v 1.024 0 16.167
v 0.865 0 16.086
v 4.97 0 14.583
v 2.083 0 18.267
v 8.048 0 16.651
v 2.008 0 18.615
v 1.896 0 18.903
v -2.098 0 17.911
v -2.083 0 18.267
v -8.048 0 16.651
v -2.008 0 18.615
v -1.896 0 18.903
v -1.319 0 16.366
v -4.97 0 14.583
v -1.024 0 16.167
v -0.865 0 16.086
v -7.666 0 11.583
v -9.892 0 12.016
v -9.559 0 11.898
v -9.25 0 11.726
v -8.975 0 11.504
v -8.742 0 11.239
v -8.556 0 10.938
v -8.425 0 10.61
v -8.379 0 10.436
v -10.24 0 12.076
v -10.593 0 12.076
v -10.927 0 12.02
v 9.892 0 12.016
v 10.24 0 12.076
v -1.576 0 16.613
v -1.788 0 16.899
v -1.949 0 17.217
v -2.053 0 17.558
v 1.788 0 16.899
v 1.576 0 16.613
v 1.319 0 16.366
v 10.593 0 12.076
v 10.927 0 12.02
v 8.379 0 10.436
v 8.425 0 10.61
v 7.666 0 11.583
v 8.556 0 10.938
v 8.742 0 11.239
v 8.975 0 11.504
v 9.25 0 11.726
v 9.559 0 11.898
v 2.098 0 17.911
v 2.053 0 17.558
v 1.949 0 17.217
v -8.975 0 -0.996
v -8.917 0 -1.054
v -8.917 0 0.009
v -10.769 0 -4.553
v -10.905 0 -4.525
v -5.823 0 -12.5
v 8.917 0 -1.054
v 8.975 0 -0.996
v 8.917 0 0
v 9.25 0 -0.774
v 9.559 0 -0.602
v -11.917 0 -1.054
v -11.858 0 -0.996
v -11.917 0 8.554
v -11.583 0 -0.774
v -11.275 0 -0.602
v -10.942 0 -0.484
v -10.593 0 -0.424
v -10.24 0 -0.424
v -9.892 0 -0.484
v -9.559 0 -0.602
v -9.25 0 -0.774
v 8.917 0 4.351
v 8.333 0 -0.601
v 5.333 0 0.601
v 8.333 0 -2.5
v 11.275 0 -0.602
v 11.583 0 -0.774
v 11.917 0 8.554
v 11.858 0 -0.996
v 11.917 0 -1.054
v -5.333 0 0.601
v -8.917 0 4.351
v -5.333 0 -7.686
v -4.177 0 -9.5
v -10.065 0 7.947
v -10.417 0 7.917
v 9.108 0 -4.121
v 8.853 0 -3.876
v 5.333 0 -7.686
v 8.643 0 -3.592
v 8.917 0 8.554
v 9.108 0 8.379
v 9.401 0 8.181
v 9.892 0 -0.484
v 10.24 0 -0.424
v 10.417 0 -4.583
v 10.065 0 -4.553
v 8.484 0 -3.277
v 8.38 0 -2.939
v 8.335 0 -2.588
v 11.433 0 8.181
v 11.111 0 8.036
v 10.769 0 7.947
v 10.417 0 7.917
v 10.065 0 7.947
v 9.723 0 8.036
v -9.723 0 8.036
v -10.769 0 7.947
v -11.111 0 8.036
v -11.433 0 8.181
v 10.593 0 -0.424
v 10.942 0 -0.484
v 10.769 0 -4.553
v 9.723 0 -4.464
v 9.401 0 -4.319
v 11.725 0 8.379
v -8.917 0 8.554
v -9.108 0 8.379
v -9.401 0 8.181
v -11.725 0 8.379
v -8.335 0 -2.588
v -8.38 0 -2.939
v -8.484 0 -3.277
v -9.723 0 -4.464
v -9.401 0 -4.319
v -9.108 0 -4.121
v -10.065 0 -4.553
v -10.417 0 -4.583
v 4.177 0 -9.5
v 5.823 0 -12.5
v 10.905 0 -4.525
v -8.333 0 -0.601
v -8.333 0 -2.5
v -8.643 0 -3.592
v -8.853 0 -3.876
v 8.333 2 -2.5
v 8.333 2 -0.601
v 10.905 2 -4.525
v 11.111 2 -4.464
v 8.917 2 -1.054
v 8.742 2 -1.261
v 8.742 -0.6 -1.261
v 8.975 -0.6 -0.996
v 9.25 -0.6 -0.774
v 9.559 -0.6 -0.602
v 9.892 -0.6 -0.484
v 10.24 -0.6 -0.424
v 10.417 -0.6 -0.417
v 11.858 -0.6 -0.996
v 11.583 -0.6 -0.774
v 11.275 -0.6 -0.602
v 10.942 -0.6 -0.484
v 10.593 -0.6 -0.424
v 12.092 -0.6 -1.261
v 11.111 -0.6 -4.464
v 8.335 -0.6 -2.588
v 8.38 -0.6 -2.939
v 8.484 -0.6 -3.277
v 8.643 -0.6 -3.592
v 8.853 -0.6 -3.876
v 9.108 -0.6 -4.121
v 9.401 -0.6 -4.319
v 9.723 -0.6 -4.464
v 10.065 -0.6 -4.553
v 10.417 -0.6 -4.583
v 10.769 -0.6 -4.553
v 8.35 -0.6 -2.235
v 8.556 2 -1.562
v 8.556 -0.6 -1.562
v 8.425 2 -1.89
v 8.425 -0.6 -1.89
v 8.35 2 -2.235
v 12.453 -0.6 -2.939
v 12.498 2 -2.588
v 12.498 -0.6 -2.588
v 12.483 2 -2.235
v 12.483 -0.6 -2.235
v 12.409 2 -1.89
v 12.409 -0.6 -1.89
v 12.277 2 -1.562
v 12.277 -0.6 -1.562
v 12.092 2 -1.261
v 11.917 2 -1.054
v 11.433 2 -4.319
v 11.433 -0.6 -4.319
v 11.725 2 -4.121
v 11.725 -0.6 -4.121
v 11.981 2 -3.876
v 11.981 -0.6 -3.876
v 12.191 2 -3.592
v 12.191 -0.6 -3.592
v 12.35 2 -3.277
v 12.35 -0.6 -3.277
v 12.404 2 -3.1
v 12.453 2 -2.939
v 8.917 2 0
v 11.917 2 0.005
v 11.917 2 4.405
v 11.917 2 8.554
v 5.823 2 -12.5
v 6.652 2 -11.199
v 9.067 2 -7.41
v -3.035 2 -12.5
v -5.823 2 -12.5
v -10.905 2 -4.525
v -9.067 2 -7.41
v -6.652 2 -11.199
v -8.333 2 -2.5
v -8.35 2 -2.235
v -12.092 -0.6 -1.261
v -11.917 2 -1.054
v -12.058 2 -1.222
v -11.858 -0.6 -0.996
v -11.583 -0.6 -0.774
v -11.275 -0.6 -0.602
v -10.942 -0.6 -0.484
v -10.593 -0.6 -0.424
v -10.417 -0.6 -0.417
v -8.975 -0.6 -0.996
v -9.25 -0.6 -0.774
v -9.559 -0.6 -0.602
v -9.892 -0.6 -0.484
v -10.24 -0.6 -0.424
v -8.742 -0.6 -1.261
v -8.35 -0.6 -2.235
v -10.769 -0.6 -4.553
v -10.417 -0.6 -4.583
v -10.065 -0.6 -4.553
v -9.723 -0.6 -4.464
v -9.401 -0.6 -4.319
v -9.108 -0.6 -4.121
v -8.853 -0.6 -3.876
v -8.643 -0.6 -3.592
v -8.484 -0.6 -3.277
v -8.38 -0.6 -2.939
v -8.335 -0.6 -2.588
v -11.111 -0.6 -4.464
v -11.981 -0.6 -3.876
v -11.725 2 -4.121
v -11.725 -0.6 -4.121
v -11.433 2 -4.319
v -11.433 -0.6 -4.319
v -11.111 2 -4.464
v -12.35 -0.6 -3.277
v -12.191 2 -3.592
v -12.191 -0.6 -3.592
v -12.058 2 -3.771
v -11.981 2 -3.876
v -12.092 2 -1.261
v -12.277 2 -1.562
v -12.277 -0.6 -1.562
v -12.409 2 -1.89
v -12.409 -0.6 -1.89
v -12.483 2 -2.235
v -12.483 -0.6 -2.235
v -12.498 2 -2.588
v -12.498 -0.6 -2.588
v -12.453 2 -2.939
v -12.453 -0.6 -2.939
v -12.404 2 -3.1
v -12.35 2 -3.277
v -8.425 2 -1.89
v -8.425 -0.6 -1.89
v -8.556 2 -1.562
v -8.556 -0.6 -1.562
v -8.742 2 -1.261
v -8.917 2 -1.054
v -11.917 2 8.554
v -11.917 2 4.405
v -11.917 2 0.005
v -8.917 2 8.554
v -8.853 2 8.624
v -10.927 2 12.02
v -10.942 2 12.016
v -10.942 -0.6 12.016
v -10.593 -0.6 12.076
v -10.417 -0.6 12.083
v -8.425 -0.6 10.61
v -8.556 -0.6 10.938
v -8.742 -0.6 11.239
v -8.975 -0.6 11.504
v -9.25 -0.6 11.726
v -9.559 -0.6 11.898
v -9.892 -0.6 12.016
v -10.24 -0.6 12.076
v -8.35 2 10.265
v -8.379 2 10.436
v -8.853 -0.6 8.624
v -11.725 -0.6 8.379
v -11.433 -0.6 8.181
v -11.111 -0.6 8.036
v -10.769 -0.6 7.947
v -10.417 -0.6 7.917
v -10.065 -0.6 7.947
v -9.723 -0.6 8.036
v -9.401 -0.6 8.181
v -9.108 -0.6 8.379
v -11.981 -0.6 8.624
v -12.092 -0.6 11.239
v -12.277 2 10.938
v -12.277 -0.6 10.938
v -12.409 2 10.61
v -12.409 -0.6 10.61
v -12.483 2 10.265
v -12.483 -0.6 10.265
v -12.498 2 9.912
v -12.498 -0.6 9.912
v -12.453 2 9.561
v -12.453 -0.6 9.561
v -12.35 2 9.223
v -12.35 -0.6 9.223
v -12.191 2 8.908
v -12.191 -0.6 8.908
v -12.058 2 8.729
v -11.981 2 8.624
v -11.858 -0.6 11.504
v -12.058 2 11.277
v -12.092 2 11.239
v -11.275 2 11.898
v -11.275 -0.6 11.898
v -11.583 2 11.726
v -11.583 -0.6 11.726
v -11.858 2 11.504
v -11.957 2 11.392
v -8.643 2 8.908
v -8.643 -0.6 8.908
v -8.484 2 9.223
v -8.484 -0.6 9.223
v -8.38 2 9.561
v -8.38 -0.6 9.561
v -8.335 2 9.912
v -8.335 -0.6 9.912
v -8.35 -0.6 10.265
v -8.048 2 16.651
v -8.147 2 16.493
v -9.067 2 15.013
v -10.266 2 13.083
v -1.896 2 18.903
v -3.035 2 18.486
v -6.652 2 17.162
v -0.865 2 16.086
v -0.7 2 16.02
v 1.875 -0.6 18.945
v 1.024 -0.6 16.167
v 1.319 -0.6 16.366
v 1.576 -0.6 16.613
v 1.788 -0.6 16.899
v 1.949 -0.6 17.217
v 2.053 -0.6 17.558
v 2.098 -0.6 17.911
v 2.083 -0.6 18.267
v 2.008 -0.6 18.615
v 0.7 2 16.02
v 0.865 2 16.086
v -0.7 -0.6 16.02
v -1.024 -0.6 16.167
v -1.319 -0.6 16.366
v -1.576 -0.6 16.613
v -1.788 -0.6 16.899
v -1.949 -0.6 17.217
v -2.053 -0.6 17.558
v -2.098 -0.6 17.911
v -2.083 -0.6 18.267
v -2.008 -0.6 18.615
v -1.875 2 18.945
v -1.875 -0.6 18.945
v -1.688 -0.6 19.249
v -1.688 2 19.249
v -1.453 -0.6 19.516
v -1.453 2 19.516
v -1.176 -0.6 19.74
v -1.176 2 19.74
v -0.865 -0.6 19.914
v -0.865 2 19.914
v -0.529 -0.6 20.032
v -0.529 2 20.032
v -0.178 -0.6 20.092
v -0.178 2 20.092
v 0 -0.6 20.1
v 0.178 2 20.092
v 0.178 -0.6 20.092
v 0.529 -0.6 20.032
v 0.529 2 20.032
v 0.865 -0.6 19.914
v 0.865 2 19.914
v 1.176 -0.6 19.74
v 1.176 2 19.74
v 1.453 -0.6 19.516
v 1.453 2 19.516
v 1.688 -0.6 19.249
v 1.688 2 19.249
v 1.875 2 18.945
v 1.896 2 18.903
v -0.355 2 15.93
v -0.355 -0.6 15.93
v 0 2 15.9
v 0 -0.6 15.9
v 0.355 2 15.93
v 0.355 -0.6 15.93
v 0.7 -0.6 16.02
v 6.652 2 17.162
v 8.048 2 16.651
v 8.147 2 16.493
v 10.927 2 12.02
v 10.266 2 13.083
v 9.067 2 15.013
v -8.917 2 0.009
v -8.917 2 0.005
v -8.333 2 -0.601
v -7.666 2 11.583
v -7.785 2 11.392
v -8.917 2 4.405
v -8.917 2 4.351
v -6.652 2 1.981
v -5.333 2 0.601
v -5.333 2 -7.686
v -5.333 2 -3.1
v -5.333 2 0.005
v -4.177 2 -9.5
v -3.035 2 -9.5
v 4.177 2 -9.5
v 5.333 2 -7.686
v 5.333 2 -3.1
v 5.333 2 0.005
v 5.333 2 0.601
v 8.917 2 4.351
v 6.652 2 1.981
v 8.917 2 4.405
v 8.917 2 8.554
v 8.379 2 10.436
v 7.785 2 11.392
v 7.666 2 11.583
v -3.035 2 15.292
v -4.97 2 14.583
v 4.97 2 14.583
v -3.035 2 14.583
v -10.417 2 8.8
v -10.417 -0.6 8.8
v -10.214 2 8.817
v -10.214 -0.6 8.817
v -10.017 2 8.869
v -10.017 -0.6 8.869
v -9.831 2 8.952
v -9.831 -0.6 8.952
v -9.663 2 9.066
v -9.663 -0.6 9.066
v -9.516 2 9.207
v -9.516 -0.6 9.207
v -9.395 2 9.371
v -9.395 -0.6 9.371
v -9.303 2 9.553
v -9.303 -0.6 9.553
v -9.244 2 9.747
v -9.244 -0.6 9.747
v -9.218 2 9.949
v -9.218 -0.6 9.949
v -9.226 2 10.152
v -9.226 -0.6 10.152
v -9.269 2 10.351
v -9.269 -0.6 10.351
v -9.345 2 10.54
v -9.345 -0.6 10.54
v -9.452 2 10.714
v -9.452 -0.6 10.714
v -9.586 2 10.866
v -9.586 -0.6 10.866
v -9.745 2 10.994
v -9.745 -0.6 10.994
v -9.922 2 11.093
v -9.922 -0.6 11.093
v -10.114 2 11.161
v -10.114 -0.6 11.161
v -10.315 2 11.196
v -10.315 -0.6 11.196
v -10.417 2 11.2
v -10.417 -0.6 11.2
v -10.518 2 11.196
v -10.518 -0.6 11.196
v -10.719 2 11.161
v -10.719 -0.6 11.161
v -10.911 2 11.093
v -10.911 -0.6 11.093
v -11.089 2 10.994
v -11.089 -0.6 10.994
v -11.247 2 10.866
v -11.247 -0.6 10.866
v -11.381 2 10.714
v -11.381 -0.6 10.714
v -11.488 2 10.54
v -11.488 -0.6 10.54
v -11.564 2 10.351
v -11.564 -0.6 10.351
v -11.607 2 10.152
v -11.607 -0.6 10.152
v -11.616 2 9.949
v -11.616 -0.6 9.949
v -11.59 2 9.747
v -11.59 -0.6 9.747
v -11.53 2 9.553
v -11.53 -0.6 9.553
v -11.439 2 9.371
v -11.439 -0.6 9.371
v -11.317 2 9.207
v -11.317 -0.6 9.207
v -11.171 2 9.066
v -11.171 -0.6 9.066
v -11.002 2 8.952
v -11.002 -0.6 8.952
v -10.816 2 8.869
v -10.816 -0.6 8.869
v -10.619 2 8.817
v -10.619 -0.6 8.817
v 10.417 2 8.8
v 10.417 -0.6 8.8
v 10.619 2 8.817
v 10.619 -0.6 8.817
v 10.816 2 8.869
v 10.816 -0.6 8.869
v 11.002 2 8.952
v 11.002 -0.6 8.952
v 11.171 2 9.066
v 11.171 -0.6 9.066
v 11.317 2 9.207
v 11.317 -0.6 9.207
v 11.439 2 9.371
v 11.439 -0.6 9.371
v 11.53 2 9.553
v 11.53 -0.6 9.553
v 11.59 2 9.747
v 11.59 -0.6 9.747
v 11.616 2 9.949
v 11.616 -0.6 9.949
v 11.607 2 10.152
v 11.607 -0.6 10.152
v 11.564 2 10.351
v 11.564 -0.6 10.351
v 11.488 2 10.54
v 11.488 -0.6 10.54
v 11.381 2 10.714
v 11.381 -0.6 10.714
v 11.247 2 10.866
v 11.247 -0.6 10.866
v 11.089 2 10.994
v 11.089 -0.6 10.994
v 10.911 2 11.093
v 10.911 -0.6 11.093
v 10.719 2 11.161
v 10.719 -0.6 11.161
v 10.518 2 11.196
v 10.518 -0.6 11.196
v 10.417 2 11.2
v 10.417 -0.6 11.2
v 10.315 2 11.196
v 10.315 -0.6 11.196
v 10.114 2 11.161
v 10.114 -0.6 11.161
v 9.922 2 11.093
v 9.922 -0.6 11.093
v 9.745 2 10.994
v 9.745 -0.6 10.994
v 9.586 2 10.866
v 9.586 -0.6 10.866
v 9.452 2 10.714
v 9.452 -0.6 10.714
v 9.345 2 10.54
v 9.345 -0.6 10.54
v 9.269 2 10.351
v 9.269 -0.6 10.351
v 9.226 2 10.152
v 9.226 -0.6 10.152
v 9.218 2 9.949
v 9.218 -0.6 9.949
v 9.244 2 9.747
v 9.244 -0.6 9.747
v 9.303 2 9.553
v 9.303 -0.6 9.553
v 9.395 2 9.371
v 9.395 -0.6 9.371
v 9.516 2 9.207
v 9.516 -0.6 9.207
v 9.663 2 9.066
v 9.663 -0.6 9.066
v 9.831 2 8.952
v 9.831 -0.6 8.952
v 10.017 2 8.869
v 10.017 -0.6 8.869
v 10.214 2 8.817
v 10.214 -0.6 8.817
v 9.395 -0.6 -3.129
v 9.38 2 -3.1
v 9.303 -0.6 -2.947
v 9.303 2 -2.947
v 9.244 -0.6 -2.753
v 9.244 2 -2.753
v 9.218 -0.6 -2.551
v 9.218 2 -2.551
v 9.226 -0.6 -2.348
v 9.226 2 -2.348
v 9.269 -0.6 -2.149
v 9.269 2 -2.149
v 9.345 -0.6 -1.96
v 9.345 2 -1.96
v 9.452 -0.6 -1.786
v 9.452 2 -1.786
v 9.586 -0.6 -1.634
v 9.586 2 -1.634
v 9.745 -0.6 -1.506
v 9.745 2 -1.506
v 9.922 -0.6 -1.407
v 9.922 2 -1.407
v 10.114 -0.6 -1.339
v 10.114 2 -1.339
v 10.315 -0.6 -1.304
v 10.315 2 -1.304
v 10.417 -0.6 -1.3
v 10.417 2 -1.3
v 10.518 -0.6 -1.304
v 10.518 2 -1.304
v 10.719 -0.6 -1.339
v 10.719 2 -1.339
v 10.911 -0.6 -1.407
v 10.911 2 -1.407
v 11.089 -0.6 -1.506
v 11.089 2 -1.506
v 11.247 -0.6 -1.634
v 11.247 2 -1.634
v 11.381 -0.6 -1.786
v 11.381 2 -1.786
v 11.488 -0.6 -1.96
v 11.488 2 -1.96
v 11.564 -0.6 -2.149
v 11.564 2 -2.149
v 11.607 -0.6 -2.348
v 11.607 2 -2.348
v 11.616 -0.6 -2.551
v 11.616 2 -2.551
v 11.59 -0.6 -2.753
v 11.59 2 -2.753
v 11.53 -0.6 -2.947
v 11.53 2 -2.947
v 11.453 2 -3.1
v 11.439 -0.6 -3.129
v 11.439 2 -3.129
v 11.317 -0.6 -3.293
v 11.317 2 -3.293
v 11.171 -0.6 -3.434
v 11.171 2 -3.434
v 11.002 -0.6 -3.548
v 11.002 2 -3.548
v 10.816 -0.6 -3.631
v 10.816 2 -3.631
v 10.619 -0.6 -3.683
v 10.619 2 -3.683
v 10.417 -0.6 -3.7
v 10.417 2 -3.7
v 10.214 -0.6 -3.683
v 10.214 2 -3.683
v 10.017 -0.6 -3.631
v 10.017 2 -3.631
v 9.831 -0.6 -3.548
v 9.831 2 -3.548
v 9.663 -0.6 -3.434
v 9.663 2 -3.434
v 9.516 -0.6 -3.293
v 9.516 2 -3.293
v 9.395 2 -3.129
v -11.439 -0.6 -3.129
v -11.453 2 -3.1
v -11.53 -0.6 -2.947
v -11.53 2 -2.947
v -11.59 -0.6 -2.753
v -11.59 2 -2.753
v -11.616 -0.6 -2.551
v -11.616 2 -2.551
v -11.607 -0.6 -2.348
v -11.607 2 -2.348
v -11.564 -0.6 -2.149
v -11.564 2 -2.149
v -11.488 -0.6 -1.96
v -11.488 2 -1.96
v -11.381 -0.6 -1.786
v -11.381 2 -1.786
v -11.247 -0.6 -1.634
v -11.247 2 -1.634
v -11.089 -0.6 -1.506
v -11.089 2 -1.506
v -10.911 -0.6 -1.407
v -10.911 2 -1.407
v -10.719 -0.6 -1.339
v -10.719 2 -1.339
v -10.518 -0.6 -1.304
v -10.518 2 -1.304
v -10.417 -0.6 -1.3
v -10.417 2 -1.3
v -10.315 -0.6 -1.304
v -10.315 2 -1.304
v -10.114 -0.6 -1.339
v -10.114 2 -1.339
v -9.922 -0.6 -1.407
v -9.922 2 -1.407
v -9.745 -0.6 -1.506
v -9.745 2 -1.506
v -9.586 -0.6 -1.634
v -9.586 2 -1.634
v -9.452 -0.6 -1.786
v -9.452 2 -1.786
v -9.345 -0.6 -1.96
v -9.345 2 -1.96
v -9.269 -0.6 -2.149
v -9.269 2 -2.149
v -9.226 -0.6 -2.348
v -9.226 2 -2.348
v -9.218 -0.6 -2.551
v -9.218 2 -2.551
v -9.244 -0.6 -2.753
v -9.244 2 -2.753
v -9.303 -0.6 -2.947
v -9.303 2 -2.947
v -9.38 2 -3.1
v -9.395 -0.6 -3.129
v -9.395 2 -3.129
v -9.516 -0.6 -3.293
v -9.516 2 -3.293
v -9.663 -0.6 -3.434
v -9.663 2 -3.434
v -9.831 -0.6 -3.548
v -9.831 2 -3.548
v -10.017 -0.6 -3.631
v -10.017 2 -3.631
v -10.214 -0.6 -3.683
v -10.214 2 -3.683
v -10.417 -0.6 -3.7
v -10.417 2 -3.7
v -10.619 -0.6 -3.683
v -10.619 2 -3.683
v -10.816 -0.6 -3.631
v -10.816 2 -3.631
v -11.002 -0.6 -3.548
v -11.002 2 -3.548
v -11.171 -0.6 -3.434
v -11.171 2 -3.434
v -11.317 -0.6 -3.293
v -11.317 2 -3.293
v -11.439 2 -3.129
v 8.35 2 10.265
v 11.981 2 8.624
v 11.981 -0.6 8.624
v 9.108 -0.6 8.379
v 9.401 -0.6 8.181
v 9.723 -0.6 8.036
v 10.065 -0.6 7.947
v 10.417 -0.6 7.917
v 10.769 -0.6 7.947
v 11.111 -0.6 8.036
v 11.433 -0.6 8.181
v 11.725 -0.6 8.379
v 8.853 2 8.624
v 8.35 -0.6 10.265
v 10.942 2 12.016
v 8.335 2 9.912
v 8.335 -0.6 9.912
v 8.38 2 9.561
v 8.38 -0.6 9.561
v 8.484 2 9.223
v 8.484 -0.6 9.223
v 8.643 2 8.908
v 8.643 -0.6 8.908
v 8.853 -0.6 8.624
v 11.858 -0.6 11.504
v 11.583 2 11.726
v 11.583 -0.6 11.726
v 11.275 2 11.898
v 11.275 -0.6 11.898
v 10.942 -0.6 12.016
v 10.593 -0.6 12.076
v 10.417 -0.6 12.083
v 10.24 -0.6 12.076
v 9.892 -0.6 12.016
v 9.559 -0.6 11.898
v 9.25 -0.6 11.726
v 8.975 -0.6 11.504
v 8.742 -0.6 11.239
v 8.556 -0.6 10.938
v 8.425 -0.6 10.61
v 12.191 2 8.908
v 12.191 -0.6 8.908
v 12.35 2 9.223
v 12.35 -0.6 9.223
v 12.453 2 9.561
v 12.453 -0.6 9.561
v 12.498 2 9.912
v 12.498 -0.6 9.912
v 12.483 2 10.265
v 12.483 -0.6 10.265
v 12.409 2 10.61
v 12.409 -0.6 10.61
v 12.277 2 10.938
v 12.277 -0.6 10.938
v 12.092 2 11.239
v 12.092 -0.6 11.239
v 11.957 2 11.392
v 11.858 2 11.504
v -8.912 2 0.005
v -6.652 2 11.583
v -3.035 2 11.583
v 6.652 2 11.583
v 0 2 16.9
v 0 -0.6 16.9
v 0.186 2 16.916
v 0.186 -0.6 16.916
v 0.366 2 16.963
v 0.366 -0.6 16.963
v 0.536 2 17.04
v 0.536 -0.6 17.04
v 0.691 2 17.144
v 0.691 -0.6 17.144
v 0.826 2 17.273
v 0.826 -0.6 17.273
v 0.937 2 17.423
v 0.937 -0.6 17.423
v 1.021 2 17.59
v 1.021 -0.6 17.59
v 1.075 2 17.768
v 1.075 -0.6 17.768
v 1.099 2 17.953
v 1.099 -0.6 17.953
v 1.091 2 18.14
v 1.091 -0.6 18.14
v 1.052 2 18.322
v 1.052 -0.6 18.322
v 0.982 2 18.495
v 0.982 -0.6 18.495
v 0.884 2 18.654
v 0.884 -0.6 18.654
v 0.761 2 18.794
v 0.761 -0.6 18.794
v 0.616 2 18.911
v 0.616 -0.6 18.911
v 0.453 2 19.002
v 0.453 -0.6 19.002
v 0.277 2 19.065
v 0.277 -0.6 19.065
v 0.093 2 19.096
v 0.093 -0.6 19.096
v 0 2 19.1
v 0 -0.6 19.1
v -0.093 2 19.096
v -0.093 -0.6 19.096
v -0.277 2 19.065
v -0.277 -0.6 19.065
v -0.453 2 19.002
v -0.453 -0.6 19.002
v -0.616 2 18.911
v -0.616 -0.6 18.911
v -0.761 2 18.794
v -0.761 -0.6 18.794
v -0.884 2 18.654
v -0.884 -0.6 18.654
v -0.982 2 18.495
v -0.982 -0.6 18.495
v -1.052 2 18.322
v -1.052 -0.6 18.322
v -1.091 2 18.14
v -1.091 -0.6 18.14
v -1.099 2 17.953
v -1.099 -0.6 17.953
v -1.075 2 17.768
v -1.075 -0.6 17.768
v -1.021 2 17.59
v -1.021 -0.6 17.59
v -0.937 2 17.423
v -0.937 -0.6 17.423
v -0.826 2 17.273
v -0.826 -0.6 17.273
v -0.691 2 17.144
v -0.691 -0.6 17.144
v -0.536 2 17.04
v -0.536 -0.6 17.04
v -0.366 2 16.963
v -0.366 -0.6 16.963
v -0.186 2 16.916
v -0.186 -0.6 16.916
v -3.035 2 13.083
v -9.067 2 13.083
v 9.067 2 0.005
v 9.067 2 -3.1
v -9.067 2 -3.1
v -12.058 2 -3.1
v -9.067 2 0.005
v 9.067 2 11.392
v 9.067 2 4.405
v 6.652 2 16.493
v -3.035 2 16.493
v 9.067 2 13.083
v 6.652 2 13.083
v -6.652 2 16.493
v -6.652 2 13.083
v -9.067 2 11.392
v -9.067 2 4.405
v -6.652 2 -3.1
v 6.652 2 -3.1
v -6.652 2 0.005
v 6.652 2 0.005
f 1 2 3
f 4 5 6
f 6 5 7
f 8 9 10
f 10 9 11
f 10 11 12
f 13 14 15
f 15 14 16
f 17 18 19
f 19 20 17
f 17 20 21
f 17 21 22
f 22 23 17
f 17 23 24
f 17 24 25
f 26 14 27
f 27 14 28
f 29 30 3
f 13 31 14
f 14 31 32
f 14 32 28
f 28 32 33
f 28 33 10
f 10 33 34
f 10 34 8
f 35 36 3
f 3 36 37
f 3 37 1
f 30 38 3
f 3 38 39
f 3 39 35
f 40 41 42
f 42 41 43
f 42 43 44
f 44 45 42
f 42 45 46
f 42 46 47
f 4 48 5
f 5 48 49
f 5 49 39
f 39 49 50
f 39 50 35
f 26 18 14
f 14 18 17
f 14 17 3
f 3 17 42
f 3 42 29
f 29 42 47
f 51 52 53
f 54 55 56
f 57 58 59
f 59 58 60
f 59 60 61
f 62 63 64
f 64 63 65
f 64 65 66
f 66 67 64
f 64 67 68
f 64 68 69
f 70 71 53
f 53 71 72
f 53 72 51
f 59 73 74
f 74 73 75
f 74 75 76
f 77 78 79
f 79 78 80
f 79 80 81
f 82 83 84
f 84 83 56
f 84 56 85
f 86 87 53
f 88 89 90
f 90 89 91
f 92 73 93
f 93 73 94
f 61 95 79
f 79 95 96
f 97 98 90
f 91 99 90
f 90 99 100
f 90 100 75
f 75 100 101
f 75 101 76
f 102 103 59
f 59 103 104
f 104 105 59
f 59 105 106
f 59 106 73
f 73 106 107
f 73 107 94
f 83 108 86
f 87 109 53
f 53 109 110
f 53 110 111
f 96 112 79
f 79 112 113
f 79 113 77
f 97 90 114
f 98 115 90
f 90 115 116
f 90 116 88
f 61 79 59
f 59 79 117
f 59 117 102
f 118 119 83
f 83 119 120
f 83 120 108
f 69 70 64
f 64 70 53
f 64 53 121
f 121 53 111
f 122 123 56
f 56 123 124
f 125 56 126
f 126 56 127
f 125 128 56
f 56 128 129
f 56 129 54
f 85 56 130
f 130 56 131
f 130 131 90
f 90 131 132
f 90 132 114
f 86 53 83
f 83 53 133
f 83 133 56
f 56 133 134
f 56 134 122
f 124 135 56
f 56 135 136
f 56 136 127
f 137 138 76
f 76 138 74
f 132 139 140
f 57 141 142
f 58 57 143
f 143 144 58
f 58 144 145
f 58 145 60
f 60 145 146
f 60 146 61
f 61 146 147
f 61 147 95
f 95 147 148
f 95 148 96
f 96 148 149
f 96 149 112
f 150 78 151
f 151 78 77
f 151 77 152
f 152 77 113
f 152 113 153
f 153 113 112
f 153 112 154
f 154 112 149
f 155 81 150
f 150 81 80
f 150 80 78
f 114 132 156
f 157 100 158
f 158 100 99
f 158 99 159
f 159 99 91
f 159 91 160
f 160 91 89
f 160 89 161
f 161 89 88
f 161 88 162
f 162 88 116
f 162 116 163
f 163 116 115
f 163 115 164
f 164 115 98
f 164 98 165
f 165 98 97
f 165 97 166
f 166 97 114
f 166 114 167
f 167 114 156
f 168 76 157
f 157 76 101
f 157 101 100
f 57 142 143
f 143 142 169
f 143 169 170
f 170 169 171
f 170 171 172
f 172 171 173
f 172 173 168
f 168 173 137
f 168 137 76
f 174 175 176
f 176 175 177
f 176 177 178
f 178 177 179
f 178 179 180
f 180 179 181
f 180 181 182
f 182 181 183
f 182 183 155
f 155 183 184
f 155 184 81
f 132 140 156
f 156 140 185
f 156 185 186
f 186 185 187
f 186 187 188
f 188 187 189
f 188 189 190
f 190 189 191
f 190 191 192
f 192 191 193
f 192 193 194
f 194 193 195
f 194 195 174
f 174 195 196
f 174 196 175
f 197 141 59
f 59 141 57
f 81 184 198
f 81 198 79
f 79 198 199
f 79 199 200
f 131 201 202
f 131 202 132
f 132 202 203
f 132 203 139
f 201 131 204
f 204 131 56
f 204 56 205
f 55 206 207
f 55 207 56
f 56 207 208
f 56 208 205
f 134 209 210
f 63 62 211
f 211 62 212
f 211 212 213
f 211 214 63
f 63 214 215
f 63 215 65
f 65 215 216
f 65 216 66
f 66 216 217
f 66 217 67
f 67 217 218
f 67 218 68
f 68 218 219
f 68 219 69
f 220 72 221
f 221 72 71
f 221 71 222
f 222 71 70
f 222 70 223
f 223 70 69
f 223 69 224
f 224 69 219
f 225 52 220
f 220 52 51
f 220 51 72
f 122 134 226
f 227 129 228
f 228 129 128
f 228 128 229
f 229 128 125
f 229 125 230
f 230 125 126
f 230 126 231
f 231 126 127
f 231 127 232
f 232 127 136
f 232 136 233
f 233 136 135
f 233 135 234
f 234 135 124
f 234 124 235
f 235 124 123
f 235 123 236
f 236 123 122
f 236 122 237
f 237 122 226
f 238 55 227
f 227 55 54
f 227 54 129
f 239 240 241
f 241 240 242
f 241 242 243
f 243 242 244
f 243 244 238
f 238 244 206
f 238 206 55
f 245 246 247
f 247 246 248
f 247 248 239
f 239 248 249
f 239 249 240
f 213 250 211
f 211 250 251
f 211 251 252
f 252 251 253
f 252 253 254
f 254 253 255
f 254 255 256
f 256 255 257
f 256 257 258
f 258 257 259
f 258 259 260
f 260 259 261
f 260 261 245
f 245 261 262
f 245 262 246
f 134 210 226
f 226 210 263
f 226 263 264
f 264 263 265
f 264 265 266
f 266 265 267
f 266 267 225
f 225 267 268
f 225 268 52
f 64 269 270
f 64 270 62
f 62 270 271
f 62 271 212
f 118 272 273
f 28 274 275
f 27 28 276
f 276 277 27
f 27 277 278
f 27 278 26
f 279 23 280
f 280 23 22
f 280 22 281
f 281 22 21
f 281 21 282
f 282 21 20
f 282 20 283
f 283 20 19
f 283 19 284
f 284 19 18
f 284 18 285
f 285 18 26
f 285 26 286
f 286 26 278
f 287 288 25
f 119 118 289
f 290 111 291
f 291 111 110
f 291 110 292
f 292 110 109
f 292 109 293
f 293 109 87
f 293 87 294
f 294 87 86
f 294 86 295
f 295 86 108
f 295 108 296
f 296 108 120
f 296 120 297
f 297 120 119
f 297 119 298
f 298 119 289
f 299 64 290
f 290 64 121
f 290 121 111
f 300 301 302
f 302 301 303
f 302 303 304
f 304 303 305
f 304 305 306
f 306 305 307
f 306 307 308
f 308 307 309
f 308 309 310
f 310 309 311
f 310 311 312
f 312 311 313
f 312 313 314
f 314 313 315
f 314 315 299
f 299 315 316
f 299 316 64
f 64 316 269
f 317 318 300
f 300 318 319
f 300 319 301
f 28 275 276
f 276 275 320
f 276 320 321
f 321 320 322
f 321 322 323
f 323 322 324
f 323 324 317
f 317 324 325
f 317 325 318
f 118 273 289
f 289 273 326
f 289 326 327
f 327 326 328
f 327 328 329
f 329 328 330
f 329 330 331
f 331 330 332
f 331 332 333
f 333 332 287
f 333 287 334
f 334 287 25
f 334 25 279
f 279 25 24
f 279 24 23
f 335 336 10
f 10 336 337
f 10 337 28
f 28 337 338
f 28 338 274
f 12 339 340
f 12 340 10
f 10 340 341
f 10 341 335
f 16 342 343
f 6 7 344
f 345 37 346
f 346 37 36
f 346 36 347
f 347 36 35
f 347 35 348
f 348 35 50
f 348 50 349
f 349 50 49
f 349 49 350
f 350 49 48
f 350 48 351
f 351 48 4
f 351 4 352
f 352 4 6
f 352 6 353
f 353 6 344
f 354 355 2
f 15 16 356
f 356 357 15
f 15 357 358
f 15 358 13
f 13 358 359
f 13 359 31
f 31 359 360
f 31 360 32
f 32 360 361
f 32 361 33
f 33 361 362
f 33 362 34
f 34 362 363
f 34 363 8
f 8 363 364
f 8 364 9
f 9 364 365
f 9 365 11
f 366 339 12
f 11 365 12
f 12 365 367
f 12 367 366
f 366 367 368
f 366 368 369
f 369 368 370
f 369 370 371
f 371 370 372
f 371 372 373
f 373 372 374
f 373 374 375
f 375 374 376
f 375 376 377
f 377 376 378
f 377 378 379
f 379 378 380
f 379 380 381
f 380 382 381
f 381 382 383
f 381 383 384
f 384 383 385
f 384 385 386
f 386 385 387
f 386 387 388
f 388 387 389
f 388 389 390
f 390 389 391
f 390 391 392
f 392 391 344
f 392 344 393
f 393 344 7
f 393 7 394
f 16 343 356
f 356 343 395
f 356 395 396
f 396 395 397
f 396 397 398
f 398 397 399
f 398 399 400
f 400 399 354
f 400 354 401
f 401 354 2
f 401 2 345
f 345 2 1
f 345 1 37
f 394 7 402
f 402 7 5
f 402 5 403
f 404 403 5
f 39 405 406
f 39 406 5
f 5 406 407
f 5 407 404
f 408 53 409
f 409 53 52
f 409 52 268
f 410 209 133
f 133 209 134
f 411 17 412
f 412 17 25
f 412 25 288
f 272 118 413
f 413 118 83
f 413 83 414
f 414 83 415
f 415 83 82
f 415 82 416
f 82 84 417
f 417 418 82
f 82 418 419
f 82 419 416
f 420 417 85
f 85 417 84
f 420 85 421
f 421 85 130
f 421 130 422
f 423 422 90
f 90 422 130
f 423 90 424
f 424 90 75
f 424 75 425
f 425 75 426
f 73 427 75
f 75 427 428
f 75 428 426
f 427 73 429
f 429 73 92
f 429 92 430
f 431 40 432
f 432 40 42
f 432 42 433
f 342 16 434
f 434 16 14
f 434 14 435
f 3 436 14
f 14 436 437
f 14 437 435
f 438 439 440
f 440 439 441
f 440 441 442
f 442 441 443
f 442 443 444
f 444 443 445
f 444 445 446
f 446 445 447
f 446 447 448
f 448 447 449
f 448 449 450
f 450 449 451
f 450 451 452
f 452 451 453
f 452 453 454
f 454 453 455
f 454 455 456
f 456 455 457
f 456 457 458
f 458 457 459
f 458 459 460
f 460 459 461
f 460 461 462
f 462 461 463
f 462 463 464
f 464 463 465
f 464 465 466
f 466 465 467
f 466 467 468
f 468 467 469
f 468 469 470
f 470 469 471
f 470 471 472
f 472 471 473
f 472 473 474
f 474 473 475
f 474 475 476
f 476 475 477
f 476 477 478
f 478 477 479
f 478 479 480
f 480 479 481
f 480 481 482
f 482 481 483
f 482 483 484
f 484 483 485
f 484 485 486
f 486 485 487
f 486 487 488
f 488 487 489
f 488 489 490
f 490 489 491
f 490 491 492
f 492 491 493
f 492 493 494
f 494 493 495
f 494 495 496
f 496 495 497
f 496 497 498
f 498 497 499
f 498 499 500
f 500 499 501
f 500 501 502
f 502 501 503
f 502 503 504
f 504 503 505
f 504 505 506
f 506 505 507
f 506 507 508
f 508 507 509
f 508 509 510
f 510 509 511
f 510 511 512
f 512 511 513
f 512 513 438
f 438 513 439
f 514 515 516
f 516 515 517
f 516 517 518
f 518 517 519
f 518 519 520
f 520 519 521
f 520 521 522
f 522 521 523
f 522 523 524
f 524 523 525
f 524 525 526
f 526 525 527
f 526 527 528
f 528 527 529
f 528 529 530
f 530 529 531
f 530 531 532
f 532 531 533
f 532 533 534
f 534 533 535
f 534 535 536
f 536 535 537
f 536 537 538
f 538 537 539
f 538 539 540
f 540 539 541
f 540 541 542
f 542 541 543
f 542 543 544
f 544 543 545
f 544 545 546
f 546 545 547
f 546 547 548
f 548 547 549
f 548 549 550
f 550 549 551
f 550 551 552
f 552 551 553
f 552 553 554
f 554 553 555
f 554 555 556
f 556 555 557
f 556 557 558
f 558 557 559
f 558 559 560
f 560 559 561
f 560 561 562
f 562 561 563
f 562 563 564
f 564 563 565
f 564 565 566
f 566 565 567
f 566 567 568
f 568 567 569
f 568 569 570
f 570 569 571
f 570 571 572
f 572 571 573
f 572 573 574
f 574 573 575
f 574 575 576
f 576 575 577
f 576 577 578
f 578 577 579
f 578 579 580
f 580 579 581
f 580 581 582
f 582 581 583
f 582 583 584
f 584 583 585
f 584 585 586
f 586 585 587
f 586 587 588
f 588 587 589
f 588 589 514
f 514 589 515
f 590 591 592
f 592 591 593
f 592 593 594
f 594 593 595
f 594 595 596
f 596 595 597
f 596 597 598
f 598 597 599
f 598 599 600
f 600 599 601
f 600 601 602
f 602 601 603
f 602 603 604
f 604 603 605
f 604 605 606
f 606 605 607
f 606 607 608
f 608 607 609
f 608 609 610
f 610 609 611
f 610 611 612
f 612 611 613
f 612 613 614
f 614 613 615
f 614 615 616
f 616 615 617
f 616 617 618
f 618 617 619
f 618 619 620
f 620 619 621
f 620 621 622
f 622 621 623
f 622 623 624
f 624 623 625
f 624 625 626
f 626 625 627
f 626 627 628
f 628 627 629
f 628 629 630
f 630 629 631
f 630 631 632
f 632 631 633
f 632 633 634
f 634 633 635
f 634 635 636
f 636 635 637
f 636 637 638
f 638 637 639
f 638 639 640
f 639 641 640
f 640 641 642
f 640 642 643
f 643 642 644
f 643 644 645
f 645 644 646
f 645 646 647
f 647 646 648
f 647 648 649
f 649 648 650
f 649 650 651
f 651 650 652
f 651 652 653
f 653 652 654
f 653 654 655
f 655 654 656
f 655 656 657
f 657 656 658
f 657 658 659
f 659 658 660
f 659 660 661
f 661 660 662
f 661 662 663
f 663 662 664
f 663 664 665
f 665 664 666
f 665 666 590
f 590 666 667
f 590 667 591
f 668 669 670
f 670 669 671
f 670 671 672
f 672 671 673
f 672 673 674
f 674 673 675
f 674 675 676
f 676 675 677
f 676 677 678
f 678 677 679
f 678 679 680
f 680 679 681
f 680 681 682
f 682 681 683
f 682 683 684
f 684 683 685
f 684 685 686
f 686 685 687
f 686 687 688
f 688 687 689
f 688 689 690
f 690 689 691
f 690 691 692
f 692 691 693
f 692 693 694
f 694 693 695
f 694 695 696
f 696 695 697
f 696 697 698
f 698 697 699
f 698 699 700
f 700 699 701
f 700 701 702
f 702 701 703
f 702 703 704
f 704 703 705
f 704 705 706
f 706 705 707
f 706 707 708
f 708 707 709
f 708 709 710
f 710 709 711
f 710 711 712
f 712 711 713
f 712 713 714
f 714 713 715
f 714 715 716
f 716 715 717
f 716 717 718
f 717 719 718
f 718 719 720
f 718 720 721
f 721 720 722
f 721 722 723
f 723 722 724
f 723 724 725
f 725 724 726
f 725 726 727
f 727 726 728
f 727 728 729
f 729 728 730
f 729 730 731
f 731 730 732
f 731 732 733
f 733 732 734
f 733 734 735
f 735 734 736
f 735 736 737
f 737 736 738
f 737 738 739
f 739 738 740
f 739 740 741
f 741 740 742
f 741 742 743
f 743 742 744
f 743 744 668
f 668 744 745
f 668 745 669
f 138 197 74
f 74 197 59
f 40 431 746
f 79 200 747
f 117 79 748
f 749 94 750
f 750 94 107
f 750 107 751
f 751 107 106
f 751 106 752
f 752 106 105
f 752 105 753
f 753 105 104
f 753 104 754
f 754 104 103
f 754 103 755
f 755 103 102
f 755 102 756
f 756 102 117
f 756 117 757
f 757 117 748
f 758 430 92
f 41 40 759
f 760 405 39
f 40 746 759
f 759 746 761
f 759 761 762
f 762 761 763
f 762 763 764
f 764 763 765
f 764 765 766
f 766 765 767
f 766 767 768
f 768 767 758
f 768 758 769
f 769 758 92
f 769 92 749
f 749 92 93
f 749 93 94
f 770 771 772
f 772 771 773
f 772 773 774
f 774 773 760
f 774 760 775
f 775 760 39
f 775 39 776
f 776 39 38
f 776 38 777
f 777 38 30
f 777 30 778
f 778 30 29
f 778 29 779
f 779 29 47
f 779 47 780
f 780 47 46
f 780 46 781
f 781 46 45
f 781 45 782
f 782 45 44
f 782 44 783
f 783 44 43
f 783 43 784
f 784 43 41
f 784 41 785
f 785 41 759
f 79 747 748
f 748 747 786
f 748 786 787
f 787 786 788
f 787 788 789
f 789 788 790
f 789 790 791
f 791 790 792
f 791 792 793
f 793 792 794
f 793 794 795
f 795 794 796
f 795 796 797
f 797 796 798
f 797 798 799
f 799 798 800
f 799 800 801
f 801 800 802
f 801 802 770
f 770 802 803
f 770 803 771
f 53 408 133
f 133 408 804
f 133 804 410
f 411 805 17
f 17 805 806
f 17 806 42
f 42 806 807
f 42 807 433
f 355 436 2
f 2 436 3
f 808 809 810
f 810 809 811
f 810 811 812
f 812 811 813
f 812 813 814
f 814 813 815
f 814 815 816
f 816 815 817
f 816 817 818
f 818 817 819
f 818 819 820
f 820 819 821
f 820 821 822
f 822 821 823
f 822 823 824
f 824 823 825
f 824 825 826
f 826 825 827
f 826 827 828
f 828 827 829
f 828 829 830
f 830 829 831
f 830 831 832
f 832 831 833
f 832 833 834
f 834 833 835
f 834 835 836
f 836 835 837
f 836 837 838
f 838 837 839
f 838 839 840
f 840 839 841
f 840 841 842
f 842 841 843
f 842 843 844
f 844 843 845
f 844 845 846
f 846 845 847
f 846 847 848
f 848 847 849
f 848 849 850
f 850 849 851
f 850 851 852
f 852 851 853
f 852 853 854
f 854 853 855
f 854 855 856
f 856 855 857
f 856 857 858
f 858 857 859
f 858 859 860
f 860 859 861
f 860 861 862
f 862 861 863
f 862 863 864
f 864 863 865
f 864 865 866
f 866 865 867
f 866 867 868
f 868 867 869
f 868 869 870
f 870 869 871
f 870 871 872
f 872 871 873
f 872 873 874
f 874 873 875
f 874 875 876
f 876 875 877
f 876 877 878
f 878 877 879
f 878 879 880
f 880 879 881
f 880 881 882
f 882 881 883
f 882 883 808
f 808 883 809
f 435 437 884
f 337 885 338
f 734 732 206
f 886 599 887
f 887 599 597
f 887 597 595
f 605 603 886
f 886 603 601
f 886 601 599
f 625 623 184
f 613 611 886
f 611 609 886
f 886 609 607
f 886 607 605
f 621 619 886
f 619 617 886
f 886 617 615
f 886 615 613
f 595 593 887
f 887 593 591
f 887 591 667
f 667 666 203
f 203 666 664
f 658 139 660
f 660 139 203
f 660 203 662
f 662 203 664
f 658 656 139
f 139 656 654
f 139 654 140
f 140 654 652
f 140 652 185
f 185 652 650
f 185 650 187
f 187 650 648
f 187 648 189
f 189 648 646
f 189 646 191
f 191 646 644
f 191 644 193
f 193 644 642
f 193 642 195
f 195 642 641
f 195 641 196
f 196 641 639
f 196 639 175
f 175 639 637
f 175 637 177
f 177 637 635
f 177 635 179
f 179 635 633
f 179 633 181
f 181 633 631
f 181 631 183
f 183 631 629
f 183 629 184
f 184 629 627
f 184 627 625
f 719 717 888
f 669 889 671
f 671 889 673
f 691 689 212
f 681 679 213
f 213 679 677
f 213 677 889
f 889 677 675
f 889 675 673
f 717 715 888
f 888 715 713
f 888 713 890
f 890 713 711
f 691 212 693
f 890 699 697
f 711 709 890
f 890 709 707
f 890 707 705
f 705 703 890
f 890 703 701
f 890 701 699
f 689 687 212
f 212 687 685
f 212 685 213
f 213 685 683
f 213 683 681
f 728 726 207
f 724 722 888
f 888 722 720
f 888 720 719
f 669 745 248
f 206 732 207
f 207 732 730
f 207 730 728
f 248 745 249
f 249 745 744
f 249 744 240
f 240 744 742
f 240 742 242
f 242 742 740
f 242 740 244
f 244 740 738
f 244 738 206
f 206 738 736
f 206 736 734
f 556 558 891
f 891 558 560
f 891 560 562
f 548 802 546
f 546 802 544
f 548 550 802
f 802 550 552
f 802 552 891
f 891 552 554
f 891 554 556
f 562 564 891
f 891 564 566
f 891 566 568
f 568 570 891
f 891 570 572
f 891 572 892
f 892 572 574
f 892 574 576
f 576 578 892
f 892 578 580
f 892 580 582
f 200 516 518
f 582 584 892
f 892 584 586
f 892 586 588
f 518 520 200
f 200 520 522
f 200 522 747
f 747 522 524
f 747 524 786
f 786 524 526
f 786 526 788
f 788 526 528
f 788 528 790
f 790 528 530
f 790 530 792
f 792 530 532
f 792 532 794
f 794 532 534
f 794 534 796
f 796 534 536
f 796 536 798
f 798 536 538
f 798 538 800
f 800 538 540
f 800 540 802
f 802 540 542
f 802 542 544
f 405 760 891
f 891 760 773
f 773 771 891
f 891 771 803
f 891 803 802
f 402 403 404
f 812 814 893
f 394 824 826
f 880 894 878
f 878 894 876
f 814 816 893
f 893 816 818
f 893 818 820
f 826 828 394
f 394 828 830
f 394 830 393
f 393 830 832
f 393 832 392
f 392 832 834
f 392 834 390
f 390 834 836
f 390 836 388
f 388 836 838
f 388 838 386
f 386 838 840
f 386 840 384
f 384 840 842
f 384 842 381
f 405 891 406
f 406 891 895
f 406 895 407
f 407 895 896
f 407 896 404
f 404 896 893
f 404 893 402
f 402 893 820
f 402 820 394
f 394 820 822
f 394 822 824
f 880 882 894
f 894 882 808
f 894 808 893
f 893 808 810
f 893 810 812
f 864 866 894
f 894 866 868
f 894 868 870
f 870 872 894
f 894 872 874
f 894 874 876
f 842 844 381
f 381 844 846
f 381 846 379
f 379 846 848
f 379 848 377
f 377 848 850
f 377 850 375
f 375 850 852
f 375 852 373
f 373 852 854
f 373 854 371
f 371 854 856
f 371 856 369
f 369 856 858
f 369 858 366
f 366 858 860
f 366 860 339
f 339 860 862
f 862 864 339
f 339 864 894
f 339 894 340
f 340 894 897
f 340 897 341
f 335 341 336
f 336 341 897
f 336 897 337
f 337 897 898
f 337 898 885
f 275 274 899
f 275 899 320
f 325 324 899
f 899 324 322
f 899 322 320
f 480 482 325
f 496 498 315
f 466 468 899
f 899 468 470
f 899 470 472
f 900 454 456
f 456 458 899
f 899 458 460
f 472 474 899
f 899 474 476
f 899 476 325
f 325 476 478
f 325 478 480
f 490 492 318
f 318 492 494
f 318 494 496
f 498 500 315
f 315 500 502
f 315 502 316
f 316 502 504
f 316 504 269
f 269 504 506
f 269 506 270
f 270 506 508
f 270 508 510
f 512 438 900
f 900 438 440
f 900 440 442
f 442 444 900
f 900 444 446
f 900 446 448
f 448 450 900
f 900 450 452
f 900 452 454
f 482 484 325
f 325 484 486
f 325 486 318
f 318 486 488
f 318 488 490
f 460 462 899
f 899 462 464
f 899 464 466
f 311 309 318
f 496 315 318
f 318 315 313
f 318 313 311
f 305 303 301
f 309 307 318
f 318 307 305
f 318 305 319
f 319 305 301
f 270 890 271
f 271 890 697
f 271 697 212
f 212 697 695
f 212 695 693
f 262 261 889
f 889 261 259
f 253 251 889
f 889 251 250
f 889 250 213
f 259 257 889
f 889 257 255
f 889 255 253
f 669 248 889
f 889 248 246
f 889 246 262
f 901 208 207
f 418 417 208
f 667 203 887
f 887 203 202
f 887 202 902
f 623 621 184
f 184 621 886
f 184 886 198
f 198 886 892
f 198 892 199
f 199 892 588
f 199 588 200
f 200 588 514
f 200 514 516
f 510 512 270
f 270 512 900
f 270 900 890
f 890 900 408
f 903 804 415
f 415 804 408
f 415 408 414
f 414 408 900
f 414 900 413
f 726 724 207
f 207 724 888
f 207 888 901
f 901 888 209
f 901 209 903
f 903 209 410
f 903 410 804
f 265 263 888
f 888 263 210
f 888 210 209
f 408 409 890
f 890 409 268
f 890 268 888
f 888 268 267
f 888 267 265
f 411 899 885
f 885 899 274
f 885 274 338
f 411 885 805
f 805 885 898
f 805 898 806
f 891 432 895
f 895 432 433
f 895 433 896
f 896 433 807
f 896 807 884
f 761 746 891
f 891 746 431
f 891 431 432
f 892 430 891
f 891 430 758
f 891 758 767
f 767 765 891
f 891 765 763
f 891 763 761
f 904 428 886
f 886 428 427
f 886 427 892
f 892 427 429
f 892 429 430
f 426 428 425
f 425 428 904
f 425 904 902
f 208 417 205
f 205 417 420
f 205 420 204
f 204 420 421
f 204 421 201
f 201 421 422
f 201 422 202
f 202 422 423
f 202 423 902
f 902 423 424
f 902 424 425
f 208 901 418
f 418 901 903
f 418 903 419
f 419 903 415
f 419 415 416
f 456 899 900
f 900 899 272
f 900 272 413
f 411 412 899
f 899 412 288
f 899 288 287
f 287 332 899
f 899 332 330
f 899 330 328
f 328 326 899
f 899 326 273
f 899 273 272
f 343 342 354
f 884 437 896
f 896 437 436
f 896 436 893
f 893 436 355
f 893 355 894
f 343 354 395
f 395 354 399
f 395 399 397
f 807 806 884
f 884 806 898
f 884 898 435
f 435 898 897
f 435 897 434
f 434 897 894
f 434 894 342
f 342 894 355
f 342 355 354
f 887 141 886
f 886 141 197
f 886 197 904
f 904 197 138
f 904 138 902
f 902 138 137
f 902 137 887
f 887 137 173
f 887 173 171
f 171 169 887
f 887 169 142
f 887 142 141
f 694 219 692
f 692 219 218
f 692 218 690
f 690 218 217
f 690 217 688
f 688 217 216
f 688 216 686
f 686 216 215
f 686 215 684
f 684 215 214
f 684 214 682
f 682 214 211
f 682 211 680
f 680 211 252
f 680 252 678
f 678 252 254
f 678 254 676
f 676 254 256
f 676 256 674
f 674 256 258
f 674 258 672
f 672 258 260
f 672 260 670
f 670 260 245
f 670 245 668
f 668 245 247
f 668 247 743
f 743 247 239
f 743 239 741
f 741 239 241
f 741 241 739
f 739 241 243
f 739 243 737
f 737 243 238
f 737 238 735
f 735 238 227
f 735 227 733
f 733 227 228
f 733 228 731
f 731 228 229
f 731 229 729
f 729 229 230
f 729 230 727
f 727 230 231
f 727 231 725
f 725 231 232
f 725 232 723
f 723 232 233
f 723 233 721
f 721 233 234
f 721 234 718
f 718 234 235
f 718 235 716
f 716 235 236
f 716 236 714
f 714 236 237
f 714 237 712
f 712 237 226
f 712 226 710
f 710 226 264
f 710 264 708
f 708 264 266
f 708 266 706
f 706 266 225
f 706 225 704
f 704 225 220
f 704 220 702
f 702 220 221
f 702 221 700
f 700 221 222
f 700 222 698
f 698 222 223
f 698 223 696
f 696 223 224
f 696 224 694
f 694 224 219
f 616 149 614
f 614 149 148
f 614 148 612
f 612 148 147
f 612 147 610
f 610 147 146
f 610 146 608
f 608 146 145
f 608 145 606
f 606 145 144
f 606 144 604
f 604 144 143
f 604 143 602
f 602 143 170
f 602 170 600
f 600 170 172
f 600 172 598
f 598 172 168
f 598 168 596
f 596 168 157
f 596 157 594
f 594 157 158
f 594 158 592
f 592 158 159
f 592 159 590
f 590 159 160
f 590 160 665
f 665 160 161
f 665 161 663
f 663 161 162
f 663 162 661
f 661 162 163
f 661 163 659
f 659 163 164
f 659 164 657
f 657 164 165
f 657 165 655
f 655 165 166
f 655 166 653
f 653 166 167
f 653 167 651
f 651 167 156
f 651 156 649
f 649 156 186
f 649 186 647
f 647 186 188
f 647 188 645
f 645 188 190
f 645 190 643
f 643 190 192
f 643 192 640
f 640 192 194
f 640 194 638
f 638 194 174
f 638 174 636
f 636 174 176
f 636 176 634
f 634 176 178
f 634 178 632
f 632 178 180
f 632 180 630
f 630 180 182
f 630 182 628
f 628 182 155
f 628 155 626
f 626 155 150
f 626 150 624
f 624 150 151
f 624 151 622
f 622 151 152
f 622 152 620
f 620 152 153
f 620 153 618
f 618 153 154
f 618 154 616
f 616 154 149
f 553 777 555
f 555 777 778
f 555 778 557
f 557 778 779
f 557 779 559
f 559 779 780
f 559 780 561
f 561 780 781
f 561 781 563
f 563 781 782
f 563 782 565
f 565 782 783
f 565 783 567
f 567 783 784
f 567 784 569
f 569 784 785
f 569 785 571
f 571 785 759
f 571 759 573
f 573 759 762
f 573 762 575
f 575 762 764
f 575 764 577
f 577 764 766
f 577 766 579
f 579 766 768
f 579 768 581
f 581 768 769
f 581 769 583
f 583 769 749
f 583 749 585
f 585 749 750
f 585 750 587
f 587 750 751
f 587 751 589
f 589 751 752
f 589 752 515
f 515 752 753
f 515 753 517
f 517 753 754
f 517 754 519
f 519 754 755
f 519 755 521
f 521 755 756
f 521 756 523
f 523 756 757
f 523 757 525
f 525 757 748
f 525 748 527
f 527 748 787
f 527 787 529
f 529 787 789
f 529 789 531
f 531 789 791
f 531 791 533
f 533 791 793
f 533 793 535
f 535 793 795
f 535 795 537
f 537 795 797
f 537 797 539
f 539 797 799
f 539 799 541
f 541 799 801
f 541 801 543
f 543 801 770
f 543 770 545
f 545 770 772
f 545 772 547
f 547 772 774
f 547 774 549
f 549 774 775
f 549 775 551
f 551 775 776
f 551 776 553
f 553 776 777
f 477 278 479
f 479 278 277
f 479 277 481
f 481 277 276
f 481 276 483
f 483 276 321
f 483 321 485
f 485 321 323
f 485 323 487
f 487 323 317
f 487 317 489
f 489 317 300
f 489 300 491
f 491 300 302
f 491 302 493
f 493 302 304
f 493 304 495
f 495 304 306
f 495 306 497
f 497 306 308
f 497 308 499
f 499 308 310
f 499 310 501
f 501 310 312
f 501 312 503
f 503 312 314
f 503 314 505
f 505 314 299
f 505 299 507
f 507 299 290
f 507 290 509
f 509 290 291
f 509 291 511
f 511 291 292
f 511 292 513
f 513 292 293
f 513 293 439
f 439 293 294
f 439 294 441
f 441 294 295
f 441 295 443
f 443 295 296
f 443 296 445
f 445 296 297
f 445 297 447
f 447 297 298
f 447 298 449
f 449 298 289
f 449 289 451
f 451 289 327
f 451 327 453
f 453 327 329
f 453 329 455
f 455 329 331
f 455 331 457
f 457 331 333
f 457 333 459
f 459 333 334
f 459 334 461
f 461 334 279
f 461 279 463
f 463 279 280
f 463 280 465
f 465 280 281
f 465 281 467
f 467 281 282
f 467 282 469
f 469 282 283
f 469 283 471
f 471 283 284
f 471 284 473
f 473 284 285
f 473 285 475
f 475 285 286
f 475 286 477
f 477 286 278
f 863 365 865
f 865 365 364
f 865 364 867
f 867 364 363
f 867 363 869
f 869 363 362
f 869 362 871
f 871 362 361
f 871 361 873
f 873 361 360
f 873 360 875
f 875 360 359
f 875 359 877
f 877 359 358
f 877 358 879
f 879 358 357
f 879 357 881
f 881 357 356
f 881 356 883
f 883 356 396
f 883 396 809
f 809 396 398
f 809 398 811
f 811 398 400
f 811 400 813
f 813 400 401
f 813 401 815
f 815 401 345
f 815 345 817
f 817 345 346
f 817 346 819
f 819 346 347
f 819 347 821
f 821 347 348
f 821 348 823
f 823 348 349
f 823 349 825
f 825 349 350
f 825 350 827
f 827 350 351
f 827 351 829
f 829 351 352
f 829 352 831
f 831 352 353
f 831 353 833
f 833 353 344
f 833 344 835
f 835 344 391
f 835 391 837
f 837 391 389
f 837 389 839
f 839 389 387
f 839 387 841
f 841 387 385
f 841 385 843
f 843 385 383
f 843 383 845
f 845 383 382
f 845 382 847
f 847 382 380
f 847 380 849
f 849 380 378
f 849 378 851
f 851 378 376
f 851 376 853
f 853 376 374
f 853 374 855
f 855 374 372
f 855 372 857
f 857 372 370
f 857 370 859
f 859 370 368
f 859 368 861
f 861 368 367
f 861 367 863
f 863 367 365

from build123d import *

# Parameters (mm, degrees)
SKETCH1_R           = 1.2
SKETCH1_R_2         = 1.1
BOSS_EXTRUDE1_DEPTH = 2
BOSS_EXTRUDE2_START = -0.6
SKETCH2_4_R         = 1.2
SKETCH2_4_R_2       = 2.083333333
SKETCH2_4_R_3       = 2.1
SKETCH2_4_R_4       = 1.1
BOSS_EXTRUDE2_DEPTH = 0.6


with BuildPart() as part:
    # Sketch1 → Boss-Extrude1 (new body)
    with BuildSketch(Plane(origin=(0, 0, 0), x_dir=(1, 0, 0), z_dir=(0, 1, 0))):
        with BuildLine():
            Line((-5.822800045, 12.5), (-10.904671205, 4.52537141))
            ThreePointArc((-10.904671205, 4.52537141), (-12.416732246, 3.083108444), (-11.916666667, 1.054220702))
            Line((-11.916666667, 1.054220702), (-11.916666667, -8.554220702))
            ThreePointArc((-11.916666667, -8.554220702), (-12.419965446, -10.571901894), (-10.927318432, -12.019780323))
            Line((-10.927318432, -12.019780323), (-8.048319684, -16.65121309))
            Line((-8.048319684, -16.65121309), (-1.895755615, -18.903388425))
            ThreePointArc((-1.895755615, -18.903388425), (0, -20.1), (1.895755615, -18.903388425))
            Line((1.895755615, -18.903388425), (8.048319684, -16.65121309))
            Line((8.048319684, -16.65121309), (10.927318432, -12.019780323))
            ThreePointArc((10.927318432, -12.019780323), (12.419965446, -10.571901894), (11.916666667, -8.554220702))
            Line((11.916666667, -8.554220702), (11.916666667, 1.054220702))
            ThreePointArc((11.916666667, 1.054220702), (12.416732246, 3.083108444), (10.904671205, 4.52537141))
            Line((10.904671205, 4.52537141), (5.822800045, 12.5))
            Line((5.822800045, 12.5), (-5.822800045, 12.5))
        make_face()
        with BuildLine():
            Line((-8.333333333, 0.601446463), (-8.916666667, -0.009018653))
            Line((-8.916666667, -0.009018653), (-8.916666667, 1.054220702))
            ThreePointArc((-8.916666667, 1.054220702), (-8.484662813, 1.720488044), (-8.333333333, 2.5))
            Line((-8.333333333, 2.5), (-8.333333333, 0.601446463))
        make_face(mode=Mode.SUBTRACT)
        with BuildLine():
            Line((8.333333333, 0.601446463), (8.333333333, 2.5))
            ThreePointArc((8.333333333, 2.5), (8.484662813, 1.720488044), (8.916666667, 1.054220702))
            Line((8.916666667, 1.054220702), (8.916666667, 0))
            Line((8.916666667, 0), (8.333333333, 0.601446463))
        make_face(mode=Mode.SUBTRACT)
        with BuildLine():
            Line((5.333333333, -0.601446463), (8.916666667, -4.351446463))
            Line((8.916666667, -4.351446463), (8.916666667, -8.554220702))
            ThreePointArc((8.916666667, -8.554220702), (8.413367887, -9.428098106), (8.379462456, -10.435977959))
            Line((8.379462456, -10.435977959), (7.666241548, -11.583333333))
            Line((7.666241548, -11.583333333), (-7.666241548, -11.583333333))
            Line((-7.666241548, -11.583333333), (-8.379462456, -10.435977959))
            ThreePointArc((-8.379462456, -10.435977959), (-8.413367887, -9.428098106), (-8.916666667, -8.554220702))
            Line((-8.916666667, -8.554220702), (-8.916666667, -4.351446463))
            Line((-8.916666667, -4.351446463), (-5.333333333, -0.601446463))
            Line((-5.333333333, -0.601446463), (-5.333333333, 7.685759929))
            Line((-5.333333333, 7.685759929), (-4.177199955, 9.5))
            Line((-4.177199955, 9.5), (4.177199955, 9.5))
            Line((4.177199955, 9.5), (5.333333333, 7.685759929))
            Line((5.333333333, 7.685759929), (5.333333333, -0.601446463))
        make_face(mode=Mode.SUBTRACT)
        with Locations((-10.416666667, 2.5)):
            Circle(SKETCH1_R, mode=Mode.SUBTRACT)
        with Locations((10.416666667, 2.5)):
            Circle(SKETCH1_R, mode=Mode.SUBTRACT)
        with Locations((-10.416666667, -10)):
            Circle(SKETCH1_R, mode=Mode.SUBTRACT)
        with Locations((10.416666667, -10)):
            Circle(SKETCH1_R, mode=Mode.SUBTRACT)
        with BuildLine():
            Line((-4.970097661, -14.583333333), (4.970097661, -14.583333333))
            Line((4.970097661, -14.583333333), (0.864511388, -16.086202712))
            ThreePointArc((0.864511388, -16.086202712), (0, -15.9), (-0.864511388, -16.086202712))
            Line((-0.864511388, -16.086202712), (-4.970097661, -14.583333333))
        make_face(mode=Mode.SUBTRACT)
        with Locations((0, -18)):
            Circle(SKETCH1_R_2, mode=Mode.SUBTRACT)
    extrude(amount=BOSS_EXTRUDE1_DEPTH)

    # Sketch2_4 → Boss-Extrude2 (add)
    # profile 1 of 5: a face of its own
    with BuildSketch(Plane(origin=(0, 0, 0), x_dir=(1, 0, 0), z_dir=(0, 1, 0)).offset(BOSS_EXTRUDE2_START)):
        with BuildLine():
            ThreePointArc((-10.927318432, -12.019780323), (-8.614659909, -11.04549004), (-8.916666667, -8.554220702))
            ThreePointArc((-8.916666667, -8.554220702), (-12.218673424, -8.95450996), (-10.927318432, -12.019780323))
        make_face()
        with Locations((-10.416666667, -10)):
            Circle(SKETCH2_4_R, mode=Mode.SUBTRACT)
    # profile 2 of 5: a face of its own
    with BuildSketch(Plane(origin=(0, 0, 0), x_dir=(1, 0, 0), z_dir=(0, 1, 0)).offset(BOSS_EXTRUDE2_START)):
        with Locations((-10.416666667, 2.5)):
            Circle(SKETCH2_4_R_2)
        with Locations((-10.416666667, 2.5)):
            Circle(SKETCH2_4_R, mode=Mode.SUBTRACT)
    # profile 3 of 5: a face of its own
    with BuildSketch(Plane(origin=(0, 0, 0), x_dir=(1, 0, 0), z_dir=(0, 1, 0)).offset(BOSS_EXTRUDE2_START)):
        with BuildLine():
            ThreePointArc((8.916666667, -8.554220702), (8.614659909, -11.04549004), (10.927318432, -12.019780323))
            ThreePointArc((10.927318432, -12.019780323), (12.218673424, -8.95450996), (8.916666667, -8.554220702))
        make_face()
        with Locations((10.416666667, -10)):
            Circle(SKETCH2_4_R, mode=Mode.SUBTRACT)
    # profile 4 of 5: a face of its own
    with BuildSketch(Plane(origin=(0, 0, 0), x_dir=(1, 0, 0), z_dir=(0, 1, 0)).offset(BOSS_EXTRUDE2_START)):
        with Locations((0, -18)):
            Circle(SKETCH2_4_R_3)
        with Locations((0, -18)):
            Circle(SKETCH2_4_R_4, mode=Mode.SUBTRACT)
    # profile 5 of 5: a face of its own
    with BuildSketch(Plane(origin=(0, 0, 0), x_dir=(1, 0, 0), z_dir=(0, 1, 0)).offset(BOSS_EXTRUDE2_START)):
        with Locations((10.416666667, 2.5)):
            Circle(SKETCH2_4_R_2)
        with Locations((10.416666667, 2.5)):
            Circle(SKETCH2_4_R, mode=Mode.SUBTRACT)
    extrude(amount=BOSS_EXTRUDE2_DEPTH)


solid = part.part
